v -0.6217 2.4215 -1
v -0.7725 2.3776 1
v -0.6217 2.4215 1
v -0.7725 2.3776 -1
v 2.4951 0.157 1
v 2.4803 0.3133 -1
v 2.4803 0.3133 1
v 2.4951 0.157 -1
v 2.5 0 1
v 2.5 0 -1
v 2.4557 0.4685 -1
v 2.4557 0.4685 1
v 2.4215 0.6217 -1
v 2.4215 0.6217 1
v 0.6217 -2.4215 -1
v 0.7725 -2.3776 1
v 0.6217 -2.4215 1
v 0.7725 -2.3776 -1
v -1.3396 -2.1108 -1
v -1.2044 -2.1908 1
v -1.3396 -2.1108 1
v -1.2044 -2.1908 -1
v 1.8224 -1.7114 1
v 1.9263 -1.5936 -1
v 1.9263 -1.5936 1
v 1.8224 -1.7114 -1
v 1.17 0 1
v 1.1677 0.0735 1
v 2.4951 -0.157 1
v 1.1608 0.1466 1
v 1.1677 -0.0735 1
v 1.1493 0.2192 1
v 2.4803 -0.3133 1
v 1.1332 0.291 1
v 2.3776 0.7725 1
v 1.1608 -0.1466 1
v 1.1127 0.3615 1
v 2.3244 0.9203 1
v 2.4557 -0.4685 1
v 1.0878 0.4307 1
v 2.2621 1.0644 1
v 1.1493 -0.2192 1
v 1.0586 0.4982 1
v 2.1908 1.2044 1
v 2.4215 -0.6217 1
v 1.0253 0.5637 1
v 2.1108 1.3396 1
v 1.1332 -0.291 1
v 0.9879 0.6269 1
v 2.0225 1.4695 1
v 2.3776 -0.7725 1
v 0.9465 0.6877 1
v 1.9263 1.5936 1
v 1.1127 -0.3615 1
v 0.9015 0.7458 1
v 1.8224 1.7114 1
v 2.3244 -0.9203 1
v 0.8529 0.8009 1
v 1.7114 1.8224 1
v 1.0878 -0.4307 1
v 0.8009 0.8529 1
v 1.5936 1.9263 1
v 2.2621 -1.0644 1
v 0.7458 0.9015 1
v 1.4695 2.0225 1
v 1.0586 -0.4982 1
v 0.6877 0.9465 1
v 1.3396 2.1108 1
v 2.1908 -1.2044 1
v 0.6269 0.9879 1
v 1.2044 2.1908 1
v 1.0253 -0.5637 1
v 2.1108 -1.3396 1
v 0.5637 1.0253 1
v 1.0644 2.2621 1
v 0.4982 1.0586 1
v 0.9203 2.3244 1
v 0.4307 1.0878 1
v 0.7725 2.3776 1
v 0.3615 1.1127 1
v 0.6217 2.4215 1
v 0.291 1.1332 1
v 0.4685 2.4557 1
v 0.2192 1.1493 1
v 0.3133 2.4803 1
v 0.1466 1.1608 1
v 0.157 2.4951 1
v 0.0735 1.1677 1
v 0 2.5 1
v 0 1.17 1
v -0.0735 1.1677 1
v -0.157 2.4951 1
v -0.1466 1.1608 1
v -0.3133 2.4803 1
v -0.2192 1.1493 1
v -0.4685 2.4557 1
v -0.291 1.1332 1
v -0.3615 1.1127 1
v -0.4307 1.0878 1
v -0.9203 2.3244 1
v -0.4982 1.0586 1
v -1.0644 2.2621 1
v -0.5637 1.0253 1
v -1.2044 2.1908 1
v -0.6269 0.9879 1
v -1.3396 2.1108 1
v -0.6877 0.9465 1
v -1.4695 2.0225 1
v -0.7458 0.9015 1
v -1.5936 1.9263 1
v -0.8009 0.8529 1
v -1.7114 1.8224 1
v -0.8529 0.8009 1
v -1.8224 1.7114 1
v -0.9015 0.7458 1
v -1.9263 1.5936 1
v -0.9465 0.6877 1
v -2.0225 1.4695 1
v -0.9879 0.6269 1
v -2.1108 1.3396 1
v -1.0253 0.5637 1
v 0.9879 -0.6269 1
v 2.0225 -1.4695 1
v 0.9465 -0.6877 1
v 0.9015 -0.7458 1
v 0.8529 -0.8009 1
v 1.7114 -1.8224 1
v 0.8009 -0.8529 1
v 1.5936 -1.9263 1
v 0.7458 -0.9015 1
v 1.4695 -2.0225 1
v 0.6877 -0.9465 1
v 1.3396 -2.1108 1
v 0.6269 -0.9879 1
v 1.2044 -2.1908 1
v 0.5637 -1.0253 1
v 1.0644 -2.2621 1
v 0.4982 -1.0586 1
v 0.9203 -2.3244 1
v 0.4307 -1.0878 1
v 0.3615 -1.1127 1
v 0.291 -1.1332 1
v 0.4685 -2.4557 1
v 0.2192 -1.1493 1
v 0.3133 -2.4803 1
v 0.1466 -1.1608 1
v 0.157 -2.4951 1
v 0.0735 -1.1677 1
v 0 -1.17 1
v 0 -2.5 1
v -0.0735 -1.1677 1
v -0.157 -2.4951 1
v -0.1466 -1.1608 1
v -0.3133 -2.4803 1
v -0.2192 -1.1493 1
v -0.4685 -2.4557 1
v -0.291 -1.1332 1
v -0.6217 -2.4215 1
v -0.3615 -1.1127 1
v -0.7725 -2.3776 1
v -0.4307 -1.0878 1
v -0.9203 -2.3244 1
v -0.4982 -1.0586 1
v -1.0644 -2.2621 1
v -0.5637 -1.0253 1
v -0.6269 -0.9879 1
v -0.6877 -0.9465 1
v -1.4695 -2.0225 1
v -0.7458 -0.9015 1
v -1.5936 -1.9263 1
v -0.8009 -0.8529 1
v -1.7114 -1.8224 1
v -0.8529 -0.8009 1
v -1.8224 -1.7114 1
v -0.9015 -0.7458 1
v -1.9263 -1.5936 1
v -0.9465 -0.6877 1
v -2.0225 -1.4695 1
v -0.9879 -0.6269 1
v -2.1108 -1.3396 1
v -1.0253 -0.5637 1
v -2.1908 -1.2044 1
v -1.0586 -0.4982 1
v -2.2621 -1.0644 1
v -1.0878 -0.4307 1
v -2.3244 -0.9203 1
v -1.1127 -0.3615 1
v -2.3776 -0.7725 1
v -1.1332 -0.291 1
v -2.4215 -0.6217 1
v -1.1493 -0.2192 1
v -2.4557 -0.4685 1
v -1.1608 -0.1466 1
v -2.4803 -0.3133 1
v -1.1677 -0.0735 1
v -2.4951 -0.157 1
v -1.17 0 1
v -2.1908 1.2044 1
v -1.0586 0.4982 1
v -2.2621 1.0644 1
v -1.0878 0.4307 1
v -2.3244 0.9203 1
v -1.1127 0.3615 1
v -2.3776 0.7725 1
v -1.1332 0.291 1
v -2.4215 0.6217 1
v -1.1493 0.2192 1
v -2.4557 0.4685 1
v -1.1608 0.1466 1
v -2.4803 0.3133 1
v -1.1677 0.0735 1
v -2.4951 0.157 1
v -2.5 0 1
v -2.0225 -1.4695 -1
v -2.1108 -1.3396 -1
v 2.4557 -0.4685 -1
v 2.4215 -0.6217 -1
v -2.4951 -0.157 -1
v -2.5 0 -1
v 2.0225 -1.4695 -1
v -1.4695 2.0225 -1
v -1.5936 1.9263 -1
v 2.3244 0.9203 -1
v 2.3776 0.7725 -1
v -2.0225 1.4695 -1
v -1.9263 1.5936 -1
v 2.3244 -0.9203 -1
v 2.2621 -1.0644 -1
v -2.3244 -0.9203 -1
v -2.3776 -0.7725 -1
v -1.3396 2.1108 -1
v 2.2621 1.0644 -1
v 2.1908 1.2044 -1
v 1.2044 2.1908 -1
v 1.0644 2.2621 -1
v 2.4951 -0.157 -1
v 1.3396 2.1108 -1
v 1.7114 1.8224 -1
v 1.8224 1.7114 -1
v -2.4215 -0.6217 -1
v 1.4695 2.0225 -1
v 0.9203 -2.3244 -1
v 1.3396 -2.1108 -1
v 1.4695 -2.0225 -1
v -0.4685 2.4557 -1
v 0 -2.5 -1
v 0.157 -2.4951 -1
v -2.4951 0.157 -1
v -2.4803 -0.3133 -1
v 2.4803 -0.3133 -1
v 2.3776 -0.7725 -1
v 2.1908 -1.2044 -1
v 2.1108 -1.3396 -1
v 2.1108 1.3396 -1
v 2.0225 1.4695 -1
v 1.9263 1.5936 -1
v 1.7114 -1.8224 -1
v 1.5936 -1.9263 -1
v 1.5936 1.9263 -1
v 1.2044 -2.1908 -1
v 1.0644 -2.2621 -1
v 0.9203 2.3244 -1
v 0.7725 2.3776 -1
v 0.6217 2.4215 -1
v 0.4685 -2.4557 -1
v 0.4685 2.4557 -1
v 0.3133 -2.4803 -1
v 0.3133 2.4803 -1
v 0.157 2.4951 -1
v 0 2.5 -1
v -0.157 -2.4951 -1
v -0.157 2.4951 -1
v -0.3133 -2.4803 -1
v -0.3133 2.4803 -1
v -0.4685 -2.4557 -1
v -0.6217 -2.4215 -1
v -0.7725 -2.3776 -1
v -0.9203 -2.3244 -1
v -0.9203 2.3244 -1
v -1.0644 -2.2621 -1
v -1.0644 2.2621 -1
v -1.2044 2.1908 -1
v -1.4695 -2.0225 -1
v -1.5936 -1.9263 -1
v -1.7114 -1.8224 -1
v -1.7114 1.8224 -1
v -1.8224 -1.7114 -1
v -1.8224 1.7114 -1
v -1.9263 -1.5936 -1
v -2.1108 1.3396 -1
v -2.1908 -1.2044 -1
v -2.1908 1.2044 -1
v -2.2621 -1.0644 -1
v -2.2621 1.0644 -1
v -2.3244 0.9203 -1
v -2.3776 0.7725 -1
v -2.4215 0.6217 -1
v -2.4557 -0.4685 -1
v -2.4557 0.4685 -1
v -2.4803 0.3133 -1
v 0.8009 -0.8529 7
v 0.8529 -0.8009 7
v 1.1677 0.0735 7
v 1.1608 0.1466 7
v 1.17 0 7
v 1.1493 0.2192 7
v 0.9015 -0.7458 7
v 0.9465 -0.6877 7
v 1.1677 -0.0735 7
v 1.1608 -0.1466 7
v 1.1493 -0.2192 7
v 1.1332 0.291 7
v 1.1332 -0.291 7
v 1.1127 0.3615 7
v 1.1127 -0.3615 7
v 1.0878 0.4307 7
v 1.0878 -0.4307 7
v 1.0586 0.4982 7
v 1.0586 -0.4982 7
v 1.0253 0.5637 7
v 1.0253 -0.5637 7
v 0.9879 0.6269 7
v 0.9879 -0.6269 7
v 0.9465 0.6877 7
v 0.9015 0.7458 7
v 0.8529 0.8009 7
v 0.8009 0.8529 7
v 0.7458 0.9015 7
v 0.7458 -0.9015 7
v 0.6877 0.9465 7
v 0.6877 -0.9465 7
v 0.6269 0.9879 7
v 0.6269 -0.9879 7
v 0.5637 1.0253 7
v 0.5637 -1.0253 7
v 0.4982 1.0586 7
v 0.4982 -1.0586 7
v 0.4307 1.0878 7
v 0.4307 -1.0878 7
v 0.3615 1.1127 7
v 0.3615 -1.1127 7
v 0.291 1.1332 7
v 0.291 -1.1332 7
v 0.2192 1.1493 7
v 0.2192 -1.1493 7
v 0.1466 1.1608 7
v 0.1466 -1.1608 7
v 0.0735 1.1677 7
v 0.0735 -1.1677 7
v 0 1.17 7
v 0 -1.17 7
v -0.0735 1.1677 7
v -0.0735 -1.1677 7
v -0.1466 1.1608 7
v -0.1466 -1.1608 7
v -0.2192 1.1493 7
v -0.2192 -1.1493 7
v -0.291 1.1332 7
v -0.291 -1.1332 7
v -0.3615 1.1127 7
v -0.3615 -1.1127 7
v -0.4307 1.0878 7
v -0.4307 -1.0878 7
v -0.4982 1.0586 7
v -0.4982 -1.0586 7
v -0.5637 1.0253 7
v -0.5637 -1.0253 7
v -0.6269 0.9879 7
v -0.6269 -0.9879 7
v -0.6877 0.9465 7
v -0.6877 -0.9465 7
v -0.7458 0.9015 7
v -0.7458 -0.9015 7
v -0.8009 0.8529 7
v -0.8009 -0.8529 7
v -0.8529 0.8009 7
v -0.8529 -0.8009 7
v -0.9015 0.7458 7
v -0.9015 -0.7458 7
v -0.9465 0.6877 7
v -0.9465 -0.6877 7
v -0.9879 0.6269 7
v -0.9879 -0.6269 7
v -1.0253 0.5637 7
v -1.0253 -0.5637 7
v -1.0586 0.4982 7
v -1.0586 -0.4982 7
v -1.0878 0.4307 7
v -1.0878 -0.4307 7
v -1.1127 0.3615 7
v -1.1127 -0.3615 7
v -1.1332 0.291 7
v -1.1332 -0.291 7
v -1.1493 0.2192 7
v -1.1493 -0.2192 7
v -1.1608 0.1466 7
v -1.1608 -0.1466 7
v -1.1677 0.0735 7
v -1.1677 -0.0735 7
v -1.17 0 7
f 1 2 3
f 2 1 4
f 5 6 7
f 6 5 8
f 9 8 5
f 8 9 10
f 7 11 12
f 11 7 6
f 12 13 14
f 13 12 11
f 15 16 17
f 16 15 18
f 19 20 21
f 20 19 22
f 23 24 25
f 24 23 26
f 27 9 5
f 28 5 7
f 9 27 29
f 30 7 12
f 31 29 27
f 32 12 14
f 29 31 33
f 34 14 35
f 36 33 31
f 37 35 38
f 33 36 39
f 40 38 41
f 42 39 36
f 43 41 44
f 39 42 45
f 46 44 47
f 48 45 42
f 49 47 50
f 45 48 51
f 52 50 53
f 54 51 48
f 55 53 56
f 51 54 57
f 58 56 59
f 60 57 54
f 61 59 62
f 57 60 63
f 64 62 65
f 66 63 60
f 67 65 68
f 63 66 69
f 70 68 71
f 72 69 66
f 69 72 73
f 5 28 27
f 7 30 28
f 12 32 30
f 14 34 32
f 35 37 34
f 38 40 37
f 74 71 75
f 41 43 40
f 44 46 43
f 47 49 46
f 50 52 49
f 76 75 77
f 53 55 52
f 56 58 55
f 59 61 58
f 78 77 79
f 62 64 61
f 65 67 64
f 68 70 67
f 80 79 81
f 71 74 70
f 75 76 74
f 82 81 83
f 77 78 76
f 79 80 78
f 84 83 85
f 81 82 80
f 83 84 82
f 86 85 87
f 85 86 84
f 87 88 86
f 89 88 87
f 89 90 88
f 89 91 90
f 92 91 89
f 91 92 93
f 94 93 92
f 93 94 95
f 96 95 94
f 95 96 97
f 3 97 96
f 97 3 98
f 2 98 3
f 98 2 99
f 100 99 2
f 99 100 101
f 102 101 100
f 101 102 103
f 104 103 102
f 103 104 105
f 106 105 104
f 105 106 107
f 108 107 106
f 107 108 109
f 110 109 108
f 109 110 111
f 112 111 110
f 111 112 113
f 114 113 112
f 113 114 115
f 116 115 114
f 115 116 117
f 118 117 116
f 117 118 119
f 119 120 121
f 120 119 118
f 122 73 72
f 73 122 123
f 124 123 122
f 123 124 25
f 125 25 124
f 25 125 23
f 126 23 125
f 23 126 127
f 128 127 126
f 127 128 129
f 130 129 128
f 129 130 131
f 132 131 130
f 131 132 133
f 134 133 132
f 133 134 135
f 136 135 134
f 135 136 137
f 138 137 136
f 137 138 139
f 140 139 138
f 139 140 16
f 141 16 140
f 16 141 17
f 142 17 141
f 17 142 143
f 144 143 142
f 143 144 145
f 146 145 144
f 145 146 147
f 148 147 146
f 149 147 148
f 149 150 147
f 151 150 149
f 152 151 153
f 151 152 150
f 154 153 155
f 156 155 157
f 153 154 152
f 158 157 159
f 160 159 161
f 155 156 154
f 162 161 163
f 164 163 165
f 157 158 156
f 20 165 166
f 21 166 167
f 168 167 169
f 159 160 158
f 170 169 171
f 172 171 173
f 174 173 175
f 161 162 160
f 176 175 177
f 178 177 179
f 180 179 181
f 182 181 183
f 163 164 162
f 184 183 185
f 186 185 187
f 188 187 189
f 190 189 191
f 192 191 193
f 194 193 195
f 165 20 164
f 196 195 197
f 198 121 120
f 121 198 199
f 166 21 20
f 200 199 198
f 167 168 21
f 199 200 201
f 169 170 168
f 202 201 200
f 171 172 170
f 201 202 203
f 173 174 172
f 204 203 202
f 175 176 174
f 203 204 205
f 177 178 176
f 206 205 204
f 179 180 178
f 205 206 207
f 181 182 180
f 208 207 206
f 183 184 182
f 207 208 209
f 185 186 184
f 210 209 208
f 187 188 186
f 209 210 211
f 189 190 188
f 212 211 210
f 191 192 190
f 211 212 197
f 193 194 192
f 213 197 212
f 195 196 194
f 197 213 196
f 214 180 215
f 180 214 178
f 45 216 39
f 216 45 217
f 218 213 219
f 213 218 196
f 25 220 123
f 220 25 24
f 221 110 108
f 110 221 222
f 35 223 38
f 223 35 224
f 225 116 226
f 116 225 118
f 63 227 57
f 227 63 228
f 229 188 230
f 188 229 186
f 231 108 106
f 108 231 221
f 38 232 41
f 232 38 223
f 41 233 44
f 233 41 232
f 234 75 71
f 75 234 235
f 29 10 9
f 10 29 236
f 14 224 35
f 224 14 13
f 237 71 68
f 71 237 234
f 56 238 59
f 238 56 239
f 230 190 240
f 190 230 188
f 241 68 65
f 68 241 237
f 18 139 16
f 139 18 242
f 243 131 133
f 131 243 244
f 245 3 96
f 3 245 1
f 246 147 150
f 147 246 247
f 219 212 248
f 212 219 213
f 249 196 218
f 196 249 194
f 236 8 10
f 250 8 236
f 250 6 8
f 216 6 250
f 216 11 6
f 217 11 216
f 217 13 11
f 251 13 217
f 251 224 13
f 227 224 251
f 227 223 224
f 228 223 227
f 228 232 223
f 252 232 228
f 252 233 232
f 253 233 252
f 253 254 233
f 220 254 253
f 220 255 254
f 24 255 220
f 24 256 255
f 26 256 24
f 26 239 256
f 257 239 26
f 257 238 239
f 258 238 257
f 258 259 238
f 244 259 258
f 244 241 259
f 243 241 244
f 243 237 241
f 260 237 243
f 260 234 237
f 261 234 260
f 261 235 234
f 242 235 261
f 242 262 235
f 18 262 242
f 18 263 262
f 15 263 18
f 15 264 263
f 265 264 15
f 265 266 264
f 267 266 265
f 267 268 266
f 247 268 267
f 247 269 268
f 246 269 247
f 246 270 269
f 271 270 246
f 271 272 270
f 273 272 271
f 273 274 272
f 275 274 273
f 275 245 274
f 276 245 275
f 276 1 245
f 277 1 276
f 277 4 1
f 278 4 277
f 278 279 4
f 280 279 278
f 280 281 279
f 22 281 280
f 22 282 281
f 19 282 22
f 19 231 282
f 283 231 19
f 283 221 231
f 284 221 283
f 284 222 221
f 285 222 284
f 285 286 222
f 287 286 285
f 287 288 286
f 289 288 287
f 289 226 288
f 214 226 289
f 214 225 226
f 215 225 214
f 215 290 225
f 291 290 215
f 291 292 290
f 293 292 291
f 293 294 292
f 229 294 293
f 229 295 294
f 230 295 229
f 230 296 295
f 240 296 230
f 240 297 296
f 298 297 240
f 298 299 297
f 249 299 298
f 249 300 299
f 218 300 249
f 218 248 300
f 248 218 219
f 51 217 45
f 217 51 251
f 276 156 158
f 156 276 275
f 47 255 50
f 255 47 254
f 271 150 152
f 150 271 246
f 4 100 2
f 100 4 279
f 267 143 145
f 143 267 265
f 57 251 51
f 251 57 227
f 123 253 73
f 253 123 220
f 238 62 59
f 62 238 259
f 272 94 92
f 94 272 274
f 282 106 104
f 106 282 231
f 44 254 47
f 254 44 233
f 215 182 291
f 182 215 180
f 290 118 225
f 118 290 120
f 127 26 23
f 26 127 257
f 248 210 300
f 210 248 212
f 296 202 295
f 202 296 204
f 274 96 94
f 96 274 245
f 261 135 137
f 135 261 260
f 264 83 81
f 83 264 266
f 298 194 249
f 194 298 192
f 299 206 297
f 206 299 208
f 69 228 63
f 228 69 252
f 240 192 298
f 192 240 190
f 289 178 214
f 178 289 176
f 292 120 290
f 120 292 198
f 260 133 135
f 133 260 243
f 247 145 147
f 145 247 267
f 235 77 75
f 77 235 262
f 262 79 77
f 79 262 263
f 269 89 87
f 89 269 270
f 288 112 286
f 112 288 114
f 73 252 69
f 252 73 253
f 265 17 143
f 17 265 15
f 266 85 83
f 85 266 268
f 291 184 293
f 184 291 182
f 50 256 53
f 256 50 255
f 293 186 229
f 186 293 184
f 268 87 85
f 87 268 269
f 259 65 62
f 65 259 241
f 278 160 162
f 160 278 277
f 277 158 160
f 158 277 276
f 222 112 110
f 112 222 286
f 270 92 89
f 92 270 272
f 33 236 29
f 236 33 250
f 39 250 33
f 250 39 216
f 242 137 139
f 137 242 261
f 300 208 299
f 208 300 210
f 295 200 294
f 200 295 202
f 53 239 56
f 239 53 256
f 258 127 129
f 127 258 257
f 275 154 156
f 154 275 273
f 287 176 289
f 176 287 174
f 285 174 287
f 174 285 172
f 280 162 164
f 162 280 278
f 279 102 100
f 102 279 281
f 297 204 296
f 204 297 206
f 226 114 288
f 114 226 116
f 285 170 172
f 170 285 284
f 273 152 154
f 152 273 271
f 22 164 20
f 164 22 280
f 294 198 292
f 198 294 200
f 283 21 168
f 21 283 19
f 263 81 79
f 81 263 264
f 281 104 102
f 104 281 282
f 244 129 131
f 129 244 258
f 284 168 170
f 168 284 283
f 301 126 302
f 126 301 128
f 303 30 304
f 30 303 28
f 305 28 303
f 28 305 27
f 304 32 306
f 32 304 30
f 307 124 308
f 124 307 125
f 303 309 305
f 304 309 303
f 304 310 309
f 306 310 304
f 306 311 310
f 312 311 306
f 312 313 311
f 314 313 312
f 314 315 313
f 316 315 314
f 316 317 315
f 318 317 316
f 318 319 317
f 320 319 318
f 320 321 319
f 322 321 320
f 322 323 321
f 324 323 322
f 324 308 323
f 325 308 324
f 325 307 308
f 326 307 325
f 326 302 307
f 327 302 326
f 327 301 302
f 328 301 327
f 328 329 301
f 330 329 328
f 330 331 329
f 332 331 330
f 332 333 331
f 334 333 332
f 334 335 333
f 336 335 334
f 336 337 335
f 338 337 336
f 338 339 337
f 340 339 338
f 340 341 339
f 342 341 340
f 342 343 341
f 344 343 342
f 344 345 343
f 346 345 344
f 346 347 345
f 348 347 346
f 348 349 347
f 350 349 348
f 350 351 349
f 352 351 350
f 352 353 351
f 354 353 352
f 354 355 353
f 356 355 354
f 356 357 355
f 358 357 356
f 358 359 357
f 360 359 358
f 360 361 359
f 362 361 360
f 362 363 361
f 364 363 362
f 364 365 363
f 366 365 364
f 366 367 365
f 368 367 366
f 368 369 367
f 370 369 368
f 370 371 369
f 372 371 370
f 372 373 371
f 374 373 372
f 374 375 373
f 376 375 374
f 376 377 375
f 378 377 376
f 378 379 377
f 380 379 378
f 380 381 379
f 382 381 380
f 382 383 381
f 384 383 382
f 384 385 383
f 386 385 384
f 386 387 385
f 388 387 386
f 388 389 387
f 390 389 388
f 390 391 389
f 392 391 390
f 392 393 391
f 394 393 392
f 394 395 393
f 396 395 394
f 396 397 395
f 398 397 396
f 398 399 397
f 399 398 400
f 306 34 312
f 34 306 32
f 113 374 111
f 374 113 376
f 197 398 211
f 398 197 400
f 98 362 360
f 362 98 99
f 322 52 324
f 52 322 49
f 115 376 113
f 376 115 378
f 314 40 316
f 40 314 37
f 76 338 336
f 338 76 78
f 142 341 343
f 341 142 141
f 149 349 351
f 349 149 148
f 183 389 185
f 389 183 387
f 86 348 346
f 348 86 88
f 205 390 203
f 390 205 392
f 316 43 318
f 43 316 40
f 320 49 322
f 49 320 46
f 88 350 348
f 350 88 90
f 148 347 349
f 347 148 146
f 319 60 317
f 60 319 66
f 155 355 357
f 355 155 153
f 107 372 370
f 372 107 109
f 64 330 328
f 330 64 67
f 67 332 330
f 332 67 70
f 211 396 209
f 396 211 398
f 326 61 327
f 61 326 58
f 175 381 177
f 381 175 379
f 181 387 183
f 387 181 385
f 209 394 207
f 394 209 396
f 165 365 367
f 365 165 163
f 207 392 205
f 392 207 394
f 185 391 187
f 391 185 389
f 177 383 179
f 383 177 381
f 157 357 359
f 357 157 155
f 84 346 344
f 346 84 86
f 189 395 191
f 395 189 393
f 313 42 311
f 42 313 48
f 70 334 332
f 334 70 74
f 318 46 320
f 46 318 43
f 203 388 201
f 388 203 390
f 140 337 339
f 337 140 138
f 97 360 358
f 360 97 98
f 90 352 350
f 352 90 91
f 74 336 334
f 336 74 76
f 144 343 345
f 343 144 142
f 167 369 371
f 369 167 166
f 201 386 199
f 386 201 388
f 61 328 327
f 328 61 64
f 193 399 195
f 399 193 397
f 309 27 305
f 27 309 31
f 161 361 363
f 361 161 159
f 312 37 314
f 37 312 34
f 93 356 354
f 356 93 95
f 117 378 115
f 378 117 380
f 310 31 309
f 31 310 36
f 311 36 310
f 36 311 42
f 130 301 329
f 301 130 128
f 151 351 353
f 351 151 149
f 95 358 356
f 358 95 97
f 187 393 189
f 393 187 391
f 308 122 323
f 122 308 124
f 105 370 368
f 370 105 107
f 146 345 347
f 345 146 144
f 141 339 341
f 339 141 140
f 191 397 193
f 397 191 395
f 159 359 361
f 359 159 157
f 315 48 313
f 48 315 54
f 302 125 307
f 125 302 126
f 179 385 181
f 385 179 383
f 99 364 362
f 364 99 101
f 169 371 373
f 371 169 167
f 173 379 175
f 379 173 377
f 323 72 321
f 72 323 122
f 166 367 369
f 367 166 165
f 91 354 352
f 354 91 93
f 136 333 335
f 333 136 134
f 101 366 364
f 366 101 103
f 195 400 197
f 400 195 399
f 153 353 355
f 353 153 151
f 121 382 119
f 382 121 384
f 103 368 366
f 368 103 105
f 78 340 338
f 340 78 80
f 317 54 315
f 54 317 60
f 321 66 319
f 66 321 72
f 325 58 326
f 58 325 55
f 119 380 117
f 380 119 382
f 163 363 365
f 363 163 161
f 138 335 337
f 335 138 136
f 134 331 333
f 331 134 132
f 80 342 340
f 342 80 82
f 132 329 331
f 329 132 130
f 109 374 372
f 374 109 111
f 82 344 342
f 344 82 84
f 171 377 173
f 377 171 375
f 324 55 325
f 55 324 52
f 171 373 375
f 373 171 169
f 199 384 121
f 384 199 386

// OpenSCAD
echo(version=version());

color("LightBlue") cylinder( h = 2, r = (5 / 2), center = true, $fn = 100 );
color("DarkBlue") translate([0,0,3.5]) cylinder( h = 7, r = (2.34 / 2), center = true, $fn = 100 );
